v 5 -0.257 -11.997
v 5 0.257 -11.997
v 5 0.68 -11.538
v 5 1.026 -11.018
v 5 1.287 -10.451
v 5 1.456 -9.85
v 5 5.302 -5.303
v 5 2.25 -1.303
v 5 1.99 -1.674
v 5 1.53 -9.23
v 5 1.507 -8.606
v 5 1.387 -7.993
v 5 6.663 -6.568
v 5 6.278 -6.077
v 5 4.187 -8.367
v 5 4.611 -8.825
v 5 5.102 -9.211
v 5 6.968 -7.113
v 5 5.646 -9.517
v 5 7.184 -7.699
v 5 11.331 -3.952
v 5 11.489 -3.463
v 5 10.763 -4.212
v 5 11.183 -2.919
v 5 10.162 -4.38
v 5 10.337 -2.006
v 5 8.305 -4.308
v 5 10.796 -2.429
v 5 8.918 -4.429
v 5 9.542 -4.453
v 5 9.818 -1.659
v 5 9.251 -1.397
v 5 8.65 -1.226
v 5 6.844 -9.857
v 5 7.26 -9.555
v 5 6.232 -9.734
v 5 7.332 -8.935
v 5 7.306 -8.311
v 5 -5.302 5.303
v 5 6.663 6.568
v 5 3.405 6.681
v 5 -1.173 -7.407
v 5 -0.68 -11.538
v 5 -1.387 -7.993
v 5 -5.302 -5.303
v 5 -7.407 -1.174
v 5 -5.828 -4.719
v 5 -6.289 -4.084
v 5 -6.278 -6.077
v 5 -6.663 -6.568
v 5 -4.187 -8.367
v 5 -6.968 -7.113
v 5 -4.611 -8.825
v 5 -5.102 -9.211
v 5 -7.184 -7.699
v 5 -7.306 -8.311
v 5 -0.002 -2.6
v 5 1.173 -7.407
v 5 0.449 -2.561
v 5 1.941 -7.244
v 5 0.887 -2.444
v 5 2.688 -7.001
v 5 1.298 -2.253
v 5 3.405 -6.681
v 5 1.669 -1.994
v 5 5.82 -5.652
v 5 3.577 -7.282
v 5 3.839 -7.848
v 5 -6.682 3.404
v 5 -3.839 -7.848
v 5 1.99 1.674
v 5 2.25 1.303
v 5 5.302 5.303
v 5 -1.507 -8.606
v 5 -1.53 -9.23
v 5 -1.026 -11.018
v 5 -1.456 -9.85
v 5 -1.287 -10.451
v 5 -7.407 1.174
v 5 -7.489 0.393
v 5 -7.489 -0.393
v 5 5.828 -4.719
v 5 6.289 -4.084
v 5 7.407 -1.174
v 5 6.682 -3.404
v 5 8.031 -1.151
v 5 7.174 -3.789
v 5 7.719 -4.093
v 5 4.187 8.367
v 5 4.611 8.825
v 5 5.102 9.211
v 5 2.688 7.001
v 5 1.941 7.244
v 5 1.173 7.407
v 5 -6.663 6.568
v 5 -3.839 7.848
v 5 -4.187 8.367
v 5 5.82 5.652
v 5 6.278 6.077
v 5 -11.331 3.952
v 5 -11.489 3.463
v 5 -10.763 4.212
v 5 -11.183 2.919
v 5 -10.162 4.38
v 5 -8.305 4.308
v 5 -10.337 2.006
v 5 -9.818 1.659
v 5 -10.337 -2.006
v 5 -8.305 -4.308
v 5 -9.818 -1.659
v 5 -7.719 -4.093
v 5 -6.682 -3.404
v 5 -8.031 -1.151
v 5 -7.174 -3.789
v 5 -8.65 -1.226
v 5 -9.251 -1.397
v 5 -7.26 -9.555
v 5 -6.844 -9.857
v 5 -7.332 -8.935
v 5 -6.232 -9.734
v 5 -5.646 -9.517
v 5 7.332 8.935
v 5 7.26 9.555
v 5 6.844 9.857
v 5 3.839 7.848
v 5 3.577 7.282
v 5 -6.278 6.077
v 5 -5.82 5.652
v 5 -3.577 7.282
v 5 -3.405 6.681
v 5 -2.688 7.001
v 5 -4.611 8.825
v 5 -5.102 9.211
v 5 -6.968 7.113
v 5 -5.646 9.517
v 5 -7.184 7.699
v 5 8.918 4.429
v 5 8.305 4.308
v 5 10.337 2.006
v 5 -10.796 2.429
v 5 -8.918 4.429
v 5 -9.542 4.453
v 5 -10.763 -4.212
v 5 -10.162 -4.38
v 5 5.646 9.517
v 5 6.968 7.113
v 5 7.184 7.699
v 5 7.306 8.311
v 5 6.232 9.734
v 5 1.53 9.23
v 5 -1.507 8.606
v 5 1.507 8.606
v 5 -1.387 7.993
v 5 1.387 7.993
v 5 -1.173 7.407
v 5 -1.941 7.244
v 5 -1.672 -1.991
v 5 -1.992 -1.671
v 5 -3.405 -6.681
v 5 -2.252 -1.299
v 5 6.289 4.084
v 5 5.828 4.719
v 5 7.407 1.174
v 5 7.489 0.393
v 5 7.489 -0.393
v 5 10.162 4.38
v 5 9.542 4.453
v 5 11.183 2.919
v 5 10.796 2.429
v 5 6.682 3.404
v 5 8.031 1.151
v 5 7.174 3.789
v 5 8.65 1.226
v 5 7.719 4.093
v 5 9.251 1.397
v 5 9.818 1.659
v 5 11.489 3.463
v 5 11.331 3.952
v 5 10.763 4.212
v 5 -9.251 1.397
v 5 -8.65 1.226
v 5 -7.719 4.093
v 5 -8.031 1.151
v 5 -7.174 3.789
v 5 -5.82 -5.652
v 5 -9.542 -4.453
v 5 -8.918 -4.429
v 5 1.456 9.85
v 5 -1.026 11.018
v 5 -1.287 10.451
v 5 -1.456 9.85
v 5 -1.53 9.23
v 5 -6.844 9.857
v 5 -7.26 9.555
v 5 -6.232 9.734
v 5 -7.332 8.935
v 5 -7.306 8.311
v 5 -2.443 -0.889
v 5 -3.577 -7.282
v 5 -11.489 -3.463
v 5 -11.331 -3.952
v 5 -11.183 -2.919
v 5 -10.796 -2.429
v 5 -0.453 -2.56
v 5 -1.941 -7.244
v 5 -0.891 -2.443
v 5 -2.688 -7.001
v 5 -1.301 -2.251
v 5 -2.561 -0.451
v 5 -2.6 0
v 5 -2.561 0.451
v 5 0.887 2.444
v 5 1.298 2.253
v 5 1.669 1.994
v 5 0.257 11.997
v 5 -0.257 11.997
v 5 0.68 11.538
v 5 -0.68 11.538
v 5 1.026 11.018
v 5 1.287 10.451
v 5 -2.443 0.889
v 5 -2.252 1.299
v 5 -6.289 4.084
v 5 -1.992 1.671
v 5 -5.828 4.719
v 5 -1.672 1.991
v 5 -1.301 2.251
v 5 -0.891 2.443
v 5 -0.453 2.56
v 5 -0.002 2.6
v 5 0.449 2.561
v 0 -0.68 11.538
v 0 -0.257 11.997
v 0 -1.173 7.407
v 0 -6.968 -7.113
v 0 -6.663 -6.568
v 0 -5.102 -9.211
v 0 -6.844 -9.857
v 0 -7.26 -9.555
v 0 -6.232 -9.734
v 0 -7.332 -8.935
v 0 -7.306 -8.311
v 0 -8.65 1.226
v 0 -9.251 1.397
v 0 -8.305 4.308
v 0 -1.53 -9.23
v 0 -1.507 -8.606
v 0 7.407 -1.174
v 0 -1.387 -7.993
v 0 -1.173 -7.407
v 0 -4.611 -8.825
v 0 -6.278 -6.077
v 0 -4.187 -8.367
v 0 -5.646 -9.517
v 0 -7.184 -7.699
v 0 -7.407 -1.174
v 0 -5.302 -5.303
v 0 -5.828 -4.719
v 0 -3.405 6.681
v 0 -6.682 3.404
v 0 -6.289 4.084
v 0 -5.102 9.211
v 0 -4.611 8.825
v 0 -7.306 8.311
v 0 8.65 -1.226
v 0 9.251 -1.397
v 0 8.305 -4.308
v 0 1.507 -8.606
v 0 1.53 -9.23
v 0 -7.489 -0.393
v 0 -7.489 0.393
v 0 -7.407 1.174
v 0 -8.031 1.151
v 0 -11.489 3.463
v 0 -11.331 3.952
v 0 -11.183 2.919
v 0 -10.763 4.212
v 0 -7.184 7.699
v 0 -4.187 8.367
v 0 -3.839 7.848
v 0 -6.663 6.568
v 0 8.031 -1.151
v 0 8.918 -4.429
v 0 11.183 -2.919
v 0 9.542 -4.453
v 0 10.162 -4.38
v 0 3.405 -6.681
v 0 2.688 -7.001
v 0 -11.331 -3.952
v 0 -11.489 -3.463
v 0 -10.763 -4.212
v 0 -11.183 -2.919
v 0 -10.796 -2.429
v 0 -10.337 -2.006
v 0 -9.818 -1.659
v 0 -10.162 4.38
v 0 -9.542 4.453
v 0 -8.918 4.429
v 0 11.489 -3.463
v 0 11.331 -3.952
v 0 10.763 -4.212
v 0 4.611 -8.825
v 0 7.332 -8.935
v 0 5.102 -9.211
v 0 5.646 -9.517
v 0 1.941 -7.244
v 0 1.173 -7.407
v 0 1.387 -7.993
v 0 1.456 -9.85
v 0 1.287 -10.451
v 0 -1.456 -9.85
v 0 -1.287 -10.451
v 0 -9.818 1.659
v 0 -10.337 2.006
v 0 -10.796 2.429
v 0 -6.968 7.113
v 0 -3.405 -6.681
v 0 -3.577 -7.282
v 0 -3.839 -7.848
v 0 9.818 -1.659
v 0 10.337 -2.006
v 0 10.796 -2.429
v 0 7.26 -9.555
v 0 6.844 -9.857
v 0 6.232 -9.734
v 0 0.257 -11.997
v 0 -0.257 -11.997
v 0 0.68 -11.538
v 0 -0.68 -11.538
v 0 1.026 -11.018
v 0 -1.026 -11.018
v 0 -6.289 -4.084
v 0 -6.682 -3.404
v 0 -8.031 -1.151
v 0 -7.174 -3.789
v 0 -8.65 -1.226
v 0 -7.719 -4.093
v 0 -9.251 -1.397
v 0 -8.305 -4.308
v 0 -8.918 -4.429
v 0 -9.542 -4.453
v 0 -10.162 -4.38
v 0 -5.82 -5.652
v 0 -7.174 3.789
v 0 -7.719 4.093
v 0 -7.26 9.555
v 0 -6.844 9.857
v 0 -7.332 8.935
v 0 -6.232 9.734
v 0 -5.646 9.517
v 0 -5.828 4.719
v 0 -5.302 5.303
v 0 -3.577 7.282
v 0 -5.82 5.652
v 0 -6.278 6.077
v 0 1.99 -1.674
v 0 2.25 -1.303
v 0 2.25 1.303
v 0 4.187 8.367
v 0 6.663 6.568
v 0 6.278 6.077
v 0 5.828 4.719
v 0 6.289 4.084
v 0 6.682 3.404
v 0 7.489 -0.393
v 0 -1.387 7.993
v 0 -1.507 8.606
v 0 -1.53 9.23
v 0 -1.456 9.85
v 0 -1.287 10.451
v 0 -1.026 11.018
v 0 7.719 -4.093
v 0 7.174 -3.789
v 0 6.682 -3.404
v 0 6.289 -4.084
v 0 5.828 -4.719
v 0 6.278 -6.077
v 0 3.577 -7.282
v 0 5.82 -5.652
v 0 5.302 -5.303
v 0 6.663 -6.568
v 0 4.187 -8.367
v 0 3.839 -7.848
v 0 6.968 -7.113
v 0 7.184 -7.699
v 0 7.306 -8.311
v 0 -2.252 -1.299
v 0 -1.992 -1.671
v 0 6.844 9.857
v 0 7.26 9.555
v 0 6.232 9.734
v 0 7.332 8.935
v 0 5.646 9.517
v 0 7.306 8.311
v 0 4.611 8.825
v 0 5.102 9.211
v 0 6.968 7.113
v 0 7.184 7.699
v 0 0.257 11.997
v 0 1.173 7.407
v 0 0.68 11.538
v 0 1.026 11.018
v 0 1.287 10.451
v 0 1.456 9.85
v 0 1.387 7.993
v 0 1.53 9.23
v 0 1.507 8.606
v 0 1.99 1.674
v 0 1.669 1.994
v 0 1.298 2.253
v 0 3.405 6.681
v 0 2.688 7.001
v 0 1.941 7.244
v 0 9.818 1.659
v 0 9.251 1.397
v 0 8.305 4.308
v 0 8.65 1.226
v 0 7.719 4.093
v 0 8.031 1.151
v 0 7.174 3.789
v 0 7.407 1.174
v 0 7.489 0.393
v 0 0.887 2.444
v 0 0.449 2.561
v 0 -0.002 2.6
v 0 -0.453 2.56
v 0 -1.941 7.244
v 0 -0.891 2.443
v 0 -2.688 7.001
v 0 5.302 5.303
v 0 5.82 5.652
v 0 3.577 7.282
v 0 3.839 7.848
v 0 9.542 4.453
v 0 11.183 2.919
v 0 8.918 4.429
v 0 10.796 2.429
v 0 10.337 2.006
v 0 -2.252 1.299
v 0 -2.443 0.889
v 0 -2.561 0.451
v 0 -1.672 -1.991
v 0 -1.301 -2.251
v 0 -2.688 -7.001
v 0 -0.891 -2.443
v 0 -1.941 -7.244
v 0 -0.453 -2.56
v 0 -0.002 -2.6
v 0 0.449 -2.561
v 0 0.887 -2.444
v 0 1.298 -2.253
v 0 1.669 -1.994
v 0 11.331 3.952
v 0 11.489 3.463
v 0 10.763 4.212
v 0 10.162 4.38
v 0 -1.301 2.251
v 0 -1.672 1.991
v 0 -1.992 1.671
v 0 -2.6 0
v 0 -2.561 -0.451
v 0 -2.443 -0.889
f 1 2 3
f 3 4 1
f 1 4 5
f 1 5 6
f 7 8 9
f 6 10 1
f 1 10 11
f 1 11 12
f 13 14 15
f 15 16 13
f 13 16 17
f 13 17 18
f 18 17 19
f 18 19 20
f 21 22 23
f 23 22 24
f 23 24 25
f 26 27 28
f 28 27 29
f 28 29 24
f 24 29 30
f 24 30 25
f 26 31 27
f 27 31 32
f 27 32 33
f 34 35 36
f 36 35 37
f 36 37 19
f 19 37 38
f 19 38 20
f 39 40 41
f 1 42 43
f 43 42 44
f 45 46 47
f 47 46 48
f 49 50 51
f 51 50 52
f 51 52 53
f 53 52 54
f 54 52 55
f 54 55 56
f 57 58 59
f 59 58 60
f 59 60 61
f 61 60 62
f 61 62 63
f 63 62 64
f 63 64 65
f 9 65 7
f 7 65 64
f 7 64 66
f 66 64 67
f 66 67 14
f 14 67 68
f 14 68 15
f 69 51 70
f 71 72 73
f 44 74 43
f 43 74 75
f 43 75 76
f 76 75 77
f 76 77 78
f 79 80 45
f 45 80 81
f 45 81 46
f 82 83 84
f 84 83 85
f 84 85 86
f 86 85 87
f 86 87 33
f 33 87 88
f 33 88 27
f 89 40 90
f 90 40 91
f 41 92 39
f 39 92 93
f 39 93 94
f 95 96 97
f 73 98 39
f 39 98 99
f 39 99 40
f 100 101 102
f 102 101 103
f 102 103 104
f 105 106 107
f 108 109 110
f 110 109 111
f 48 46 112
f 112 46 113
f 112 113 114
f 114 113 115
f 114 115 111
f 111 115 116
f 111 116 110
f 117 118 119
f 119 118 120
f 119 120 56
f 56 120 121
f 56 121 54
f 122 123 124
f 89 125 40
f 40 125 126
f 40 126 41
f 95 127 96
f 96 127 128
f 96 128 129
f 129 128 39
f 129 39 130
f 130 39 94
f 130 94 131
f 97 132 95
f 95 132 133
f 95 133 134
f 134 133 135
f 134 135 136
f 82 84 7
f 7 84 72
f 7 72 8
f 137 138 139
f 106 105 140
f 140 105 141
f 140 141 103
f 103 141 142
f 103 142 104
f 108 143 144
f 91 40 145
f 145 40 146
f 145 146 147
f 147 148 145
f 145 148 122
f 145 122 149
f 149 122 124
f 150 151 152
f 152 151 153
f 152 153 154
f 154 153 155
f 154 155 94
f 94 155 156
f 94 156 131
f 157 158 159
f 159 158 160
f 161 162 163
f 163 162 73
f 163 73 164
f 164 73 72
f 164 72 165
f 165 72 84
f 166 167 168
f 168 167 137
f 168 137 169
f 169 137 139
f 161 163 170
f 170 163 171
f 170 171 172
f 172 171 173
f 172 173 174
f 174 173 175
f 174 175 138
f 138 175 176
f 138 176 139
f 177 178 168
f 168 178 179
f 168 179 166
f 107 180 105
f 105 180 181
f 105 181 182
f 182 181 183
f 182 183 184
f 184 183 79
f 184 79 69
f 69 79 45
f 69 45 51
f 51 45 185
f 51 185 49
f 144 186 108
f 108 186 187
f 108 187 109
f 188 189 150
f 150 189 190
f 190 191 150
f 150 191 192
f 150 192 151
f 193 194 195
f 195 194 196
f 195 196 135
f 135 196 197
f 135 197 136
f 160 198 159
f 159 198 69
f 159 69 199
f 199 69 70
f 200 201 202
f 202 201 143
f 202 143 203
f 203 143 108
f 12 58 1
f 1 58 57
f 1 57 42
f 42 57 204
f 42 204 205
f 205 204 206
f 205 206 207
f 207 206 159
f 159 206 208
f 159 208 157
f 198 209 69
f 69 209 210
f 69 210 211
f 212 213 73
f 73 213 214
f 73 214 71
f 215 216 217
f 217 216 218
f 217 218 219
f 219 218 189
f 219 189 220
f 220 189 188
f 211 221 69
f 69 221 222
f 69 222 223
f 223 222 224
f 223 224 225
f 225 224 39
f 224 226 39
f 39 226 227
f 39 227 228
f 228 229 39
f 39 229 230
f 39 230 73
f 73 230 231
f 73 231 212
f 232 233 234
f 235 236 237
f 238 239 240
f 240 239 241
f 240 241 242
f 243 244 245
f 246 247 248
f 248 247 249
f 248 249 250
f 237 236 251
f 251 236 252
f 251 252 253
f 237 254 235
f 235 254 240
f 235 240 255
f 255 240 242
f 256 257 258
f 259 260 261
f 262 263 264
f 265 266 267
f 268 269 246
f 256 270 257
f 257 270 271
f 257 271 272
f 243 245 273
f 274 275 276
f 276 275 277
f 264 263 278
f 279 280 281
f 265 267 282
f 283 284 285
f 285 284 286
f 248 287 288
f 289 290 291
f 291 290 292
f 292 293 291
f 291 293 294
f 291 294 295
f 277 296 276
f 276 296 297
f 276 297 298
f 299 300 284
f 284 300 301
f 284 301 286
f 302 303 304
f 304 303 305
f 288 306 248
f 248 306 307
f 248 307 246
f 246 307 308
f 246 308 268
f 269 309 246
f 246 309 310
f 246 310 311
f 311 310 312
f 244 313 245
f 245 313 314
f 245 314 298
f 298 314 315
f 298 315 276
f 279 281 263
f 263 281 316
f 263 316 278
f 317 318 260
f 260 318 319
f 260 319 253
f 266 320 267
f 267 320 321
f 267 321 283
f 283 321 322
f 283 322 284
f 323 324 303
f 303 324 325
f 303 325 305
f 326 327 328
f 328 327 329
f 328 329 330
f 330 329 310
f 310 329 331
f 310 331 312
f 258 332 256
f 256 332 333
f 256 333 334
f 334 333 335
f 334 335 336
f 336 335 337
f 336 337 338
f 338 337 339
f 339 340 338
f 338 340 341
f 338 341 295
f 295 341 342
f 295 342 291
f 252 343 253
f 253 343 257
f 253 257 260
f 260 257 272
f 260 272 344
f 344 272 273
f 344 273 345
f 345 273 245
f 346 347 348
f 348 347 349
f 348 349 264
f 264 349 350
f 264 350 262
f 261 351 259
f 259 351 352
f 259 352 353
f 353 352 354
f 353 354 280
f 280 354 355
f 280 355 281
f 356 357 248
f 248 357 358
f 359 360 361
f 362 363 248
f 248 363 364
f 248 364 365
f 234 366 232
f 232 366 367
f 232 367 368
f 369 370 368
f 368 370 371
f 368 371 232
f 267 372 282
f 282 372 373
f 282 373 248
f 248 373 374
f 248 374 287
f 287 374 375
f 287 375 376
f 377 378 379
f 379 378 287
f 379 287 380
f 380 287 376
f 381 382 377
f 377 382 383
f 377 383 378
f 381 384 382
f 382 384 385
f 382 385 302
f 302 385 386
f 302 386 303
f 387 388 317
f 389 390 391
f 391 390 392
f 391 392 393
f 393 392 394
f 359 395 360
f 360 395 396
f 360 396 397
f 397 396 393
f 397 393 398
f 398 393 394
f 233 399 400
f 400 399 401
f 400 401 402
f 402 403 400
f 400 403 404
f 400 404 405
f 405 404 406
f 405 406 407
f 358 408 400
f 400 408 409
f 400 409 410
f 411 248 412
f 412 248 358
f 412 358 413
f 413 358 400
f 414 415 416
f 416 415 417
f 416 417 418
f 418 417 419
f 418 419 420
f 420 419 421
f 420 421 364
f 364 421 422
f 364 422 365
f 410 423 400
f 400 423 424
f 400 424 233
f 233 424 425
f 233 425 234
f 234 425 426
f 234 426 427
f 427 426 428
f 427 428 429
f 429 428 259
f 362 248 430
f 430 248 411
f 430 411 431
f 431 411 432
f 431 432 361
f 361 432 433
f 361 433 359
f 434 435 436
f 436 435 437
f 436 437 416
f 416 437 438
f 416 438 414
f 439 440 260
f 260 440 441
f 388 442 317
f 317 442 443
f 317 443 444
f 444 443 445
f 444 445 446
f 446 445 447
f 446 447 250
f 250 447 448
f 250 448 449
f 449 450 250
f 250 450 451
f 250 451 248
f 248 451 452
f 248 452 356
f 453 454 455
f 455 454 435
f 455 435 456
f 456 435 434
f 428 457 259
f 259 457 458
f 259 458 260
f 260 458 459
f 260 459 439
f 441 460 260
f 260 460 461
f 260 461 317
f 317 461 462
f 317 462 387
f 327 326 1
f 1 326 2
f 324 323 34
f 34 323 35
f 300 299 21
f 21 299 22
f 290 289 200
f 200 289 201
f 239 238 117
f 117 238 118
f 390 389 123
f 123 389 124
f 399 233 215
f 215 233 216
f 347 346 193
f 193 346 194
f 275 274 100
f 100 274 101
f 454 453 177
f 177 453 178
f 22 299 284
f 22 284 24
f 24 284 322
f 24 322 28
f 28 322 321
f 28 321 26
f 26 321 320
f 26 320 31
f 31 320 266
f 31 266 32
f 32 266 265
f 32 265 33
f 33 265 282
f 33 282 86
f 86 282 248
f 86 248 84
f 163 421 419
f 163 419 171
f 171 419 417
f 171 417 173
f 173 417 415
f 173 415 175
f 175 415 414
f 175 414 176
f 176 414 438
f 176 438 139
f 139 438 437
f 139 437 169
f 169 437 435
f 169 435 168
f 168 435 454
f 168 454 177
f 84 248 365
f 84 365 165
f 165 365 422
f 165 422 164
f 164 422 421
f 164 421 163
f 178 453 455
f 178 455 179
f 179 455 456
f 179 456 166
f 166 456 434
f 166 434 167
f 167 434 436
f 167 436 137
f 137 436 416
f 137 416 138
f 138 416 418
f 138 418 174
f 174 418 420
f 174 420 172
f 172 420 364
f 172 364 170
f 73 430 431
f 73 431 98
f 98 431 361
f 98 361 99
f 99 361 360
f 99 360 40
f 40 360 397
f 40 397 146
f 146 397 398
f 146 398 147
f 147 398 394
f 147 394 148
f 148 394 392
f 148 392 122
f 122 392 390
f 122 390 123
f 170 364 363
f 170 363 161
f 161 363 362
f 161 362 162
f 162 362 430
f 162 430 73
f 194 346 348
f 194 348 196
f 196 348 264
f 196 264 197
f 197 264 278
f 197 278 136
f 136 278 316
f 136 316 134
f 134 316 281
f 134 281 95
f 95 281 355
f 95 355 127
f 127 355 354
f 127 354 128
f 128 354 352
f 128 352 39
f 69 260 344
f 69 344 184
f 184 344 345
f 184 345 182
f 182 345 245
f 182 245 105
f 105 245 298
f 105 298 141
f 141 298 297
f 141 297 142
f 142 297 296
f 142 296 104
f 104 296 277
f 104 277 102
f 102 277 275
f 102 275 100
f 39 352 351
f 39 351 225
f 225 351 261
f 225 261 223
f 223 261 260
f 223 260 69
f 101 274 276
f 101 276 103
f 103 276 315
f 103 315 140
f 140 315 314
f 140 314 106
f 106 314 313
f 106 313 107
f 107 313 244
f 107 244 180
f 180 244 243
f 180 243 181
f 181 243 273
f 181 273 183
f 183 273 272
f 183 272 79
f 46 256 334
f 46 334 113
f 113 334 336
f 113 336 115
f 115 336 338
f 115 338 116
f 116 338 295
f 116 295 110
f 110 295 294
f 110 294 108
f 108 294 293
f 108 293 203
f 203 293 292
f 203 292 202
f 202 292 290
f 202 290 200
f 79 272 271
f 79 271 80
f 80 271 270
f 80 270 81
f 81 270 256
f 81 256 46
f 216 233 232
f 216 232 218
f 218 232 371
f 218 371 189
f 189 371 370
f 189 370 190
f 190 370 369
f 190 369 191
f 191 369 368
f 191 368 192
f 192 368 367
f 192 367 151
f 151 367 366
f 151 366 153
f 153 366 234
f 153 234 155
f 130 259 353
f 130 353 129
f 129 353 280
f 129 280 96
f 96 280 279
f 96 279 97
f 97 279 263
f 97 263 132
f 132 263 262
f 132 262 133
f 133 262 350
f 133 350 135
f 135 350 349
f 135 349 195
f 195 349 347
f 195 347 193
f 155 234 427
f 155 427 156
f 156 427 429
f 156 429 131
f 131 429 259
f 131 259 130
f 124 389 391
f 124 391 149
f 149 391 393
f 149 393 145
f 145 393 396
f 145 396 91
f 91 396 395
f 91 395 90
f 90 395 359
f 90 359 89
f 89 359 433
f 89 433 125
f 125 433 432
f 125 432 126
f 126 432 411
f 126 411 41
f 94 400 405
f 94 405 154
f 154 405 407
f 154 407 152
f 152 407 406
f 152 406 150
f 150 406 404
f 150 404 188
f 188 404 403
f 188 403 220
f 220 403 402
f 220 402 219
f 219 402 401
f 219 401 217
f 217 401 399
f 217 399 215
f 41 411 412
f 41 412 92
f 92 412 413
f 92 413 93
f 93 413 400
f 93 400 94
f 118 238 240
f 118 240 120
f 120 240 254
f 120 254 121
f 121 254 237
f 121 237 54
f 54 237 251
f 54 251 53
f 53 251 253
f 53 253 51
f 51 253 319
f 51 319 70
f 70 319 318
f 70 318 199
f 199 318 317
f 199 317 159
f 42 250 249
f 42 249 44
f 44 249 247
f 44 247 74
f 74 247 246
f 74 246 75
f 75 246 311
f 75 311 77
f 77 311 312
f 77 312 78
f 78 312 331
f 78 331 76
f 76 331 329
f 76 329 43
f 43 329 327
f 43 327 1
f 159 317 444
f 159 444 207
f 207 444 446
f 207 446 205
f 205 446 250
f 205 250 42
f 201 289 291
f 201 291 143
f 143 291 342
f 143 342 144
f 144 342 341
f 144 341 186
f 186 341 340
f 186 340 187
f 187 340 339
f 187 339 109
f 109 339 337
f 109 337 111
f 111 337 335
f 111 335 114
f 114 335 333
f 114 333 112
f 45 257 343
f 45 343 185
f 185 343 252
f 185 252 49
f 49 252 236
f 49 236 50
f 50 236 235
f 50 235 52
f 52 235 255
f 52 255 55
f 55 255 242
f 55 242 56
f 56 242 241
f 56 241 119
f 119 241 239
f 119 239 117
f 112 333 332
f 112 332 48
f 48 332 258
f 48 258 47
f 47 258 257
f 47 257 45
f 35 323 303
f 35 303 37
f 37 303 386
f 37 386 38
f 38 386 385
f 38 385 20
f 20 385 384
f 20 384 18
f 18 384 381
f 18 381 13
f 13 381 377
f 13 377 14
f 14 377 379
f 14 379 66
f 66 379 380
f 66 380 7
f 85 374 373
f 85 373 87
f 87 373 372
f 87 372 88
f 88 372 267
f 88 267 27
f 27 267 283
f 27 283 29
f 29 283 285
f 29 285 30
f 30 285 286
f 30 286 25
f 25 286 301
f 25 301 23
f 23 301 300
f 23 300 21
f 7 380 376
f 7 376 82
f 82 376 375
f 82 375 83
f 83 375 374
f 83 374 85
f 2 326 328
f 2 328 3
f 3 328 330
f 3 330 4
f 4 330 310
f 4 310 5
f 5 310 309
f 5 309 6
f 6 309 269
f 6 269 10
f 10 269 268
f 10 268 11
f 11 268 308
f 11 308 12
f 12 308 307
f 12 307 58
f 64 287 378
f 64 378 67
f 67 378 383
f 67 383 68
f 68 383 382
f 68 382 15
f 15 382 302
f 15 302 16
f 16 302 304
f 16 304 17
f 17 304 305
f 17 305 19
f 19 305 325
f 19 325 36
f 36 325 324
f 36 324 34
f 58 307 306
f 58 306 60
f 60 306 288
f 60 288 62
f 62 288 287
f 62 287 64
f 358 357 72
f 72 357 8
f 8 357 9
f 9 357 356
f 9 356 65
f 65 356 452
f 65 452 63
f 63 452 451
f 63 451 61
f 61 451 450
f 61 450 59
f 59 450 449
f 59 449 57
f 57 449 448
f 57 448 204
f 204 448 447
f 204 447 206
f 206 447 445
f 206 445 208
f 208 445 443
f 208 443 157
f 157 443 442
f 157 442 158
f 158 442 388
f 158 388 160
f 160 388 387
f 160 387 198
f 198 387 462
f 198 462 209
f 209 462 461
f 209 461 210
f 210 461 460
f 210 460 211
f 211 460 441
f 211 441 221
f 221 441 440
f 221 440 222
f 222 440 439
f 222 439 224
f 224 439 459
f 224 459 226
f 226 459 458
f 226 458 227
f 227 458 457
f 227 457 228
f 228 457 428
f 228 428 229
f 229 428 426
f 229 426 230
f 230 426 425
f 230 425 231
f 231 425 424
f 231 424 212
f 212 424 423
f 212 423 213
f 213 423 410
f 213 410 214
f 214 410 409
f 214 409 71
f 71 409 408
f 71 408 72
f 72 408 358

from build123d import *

# Parameters (mm, degrees)
BASPROSKE_W        = 5
BASPROSKE_H        = 12
TOOTHCUT_DEPTH     = 18.691806013
TEETHCUTS_COUNT    = 10
TEETHCUTS_ANGLE    = 324
BORSKE_R           = 0.5
BORE_DEPTH         = 50.0000508
SKETCH2_R          = 0.5
CUT_EXTRUDE1_DEPTH = 10


with BuildPart() as part:
    # BasProSke → Base-Revolve (revolve)
    with BuildSketch(Plane(origin=(0, 0, 0), x_dir=(1, 0, 0), z_dir=(0, 1, 0)), mode=Mode.PRIVATE) as base_revolve_sk:
        with Locations((2.5, 6)):
            Rectangle(BASPROSKE_W, BASPROSKE_H)
    revolve(base_revolve_sk.sketch.rotate(Axis((-10, 0, 0), (1, 0, 0)), 180), axis=Axis((-10, 0, 0), (1, 0, 0)))

    # TooCutSke → ToothCut (cut, through all)
    with BuildSketch(Plane(origin=(0, 0, 0), x_dir=(0, 0, -1), z_dir=(1, 0, 0))):
        with BuildLine():
            ThreePointArc((1.173662691, 7.406586048), (0, 7.499), (-1.173662691, 7.406586048))
            ThreePointArc((-1.173662691, 7.406586048), (-1.668191438, 9.834565786), (-3.497907776, 11.50542856))
            ThreePointArc((-3.497907776, 11.50542856), (0, 12.0254), (3.497907776, 11.50542856))
            ThreePointArc((3.497907776, 11.50542856), (1.668191438, 9.834565786), (1.173662691, 7.406586048))
        make_face()
    toothcut = extrude(amount=TOOTHCUT_DEPTH, mode=Mode.SUBTRACT)

    # TeethCuts: ToothCut ×10 about axis
    teethcuts_axis = Axis((-10, 0, 0), (1, 0, 0))
    for i in range(1, TEETHCUTS_COUNT):
        add(toothcut.rotate(teethcuts_axis, i * TEETHCUTS_ANGLE / (TEETHCUTS_COUNT - 1)), mode=Mode.SUBTRACT)

    # BorSke → Bore (cut, symmetric)
    with BuildSketch(Plane(origin=(0, 0, 0), x_dir=(0, 0, -1), z_dir=(1, 0, 0))):
        with Locations(Location((0, 0, 0), (0, 0, 180))):
            Circle(BORSKE_R)
    extrude(amount=BORE_DEPTH, both=True, mode=Mode.SUBTRACT)

    # Sketch2 → Cut-Extrude1 (cut)
    with BuildSketch(Plane.ZY):
        with BuildLine():
            Line((1.302881422, 2.25), (-1.302881422, 2.25))
            ThreePointArc((-1.302881422, 2.25), (-1.29855849, -2.252497691), (2.6, 0))
            ThreePointArc((2.6, 0), (2.252497691, 1.29855849), (1.302881422, 2.25))
        make_face()
        Circle(SKETCH2_R, mode=Mode.SUBTRACT)
    extrude(amount=-CUT_EXTRUDE1_DEPTH, mode=Mode.SUBTRACT)


solid = part.part
